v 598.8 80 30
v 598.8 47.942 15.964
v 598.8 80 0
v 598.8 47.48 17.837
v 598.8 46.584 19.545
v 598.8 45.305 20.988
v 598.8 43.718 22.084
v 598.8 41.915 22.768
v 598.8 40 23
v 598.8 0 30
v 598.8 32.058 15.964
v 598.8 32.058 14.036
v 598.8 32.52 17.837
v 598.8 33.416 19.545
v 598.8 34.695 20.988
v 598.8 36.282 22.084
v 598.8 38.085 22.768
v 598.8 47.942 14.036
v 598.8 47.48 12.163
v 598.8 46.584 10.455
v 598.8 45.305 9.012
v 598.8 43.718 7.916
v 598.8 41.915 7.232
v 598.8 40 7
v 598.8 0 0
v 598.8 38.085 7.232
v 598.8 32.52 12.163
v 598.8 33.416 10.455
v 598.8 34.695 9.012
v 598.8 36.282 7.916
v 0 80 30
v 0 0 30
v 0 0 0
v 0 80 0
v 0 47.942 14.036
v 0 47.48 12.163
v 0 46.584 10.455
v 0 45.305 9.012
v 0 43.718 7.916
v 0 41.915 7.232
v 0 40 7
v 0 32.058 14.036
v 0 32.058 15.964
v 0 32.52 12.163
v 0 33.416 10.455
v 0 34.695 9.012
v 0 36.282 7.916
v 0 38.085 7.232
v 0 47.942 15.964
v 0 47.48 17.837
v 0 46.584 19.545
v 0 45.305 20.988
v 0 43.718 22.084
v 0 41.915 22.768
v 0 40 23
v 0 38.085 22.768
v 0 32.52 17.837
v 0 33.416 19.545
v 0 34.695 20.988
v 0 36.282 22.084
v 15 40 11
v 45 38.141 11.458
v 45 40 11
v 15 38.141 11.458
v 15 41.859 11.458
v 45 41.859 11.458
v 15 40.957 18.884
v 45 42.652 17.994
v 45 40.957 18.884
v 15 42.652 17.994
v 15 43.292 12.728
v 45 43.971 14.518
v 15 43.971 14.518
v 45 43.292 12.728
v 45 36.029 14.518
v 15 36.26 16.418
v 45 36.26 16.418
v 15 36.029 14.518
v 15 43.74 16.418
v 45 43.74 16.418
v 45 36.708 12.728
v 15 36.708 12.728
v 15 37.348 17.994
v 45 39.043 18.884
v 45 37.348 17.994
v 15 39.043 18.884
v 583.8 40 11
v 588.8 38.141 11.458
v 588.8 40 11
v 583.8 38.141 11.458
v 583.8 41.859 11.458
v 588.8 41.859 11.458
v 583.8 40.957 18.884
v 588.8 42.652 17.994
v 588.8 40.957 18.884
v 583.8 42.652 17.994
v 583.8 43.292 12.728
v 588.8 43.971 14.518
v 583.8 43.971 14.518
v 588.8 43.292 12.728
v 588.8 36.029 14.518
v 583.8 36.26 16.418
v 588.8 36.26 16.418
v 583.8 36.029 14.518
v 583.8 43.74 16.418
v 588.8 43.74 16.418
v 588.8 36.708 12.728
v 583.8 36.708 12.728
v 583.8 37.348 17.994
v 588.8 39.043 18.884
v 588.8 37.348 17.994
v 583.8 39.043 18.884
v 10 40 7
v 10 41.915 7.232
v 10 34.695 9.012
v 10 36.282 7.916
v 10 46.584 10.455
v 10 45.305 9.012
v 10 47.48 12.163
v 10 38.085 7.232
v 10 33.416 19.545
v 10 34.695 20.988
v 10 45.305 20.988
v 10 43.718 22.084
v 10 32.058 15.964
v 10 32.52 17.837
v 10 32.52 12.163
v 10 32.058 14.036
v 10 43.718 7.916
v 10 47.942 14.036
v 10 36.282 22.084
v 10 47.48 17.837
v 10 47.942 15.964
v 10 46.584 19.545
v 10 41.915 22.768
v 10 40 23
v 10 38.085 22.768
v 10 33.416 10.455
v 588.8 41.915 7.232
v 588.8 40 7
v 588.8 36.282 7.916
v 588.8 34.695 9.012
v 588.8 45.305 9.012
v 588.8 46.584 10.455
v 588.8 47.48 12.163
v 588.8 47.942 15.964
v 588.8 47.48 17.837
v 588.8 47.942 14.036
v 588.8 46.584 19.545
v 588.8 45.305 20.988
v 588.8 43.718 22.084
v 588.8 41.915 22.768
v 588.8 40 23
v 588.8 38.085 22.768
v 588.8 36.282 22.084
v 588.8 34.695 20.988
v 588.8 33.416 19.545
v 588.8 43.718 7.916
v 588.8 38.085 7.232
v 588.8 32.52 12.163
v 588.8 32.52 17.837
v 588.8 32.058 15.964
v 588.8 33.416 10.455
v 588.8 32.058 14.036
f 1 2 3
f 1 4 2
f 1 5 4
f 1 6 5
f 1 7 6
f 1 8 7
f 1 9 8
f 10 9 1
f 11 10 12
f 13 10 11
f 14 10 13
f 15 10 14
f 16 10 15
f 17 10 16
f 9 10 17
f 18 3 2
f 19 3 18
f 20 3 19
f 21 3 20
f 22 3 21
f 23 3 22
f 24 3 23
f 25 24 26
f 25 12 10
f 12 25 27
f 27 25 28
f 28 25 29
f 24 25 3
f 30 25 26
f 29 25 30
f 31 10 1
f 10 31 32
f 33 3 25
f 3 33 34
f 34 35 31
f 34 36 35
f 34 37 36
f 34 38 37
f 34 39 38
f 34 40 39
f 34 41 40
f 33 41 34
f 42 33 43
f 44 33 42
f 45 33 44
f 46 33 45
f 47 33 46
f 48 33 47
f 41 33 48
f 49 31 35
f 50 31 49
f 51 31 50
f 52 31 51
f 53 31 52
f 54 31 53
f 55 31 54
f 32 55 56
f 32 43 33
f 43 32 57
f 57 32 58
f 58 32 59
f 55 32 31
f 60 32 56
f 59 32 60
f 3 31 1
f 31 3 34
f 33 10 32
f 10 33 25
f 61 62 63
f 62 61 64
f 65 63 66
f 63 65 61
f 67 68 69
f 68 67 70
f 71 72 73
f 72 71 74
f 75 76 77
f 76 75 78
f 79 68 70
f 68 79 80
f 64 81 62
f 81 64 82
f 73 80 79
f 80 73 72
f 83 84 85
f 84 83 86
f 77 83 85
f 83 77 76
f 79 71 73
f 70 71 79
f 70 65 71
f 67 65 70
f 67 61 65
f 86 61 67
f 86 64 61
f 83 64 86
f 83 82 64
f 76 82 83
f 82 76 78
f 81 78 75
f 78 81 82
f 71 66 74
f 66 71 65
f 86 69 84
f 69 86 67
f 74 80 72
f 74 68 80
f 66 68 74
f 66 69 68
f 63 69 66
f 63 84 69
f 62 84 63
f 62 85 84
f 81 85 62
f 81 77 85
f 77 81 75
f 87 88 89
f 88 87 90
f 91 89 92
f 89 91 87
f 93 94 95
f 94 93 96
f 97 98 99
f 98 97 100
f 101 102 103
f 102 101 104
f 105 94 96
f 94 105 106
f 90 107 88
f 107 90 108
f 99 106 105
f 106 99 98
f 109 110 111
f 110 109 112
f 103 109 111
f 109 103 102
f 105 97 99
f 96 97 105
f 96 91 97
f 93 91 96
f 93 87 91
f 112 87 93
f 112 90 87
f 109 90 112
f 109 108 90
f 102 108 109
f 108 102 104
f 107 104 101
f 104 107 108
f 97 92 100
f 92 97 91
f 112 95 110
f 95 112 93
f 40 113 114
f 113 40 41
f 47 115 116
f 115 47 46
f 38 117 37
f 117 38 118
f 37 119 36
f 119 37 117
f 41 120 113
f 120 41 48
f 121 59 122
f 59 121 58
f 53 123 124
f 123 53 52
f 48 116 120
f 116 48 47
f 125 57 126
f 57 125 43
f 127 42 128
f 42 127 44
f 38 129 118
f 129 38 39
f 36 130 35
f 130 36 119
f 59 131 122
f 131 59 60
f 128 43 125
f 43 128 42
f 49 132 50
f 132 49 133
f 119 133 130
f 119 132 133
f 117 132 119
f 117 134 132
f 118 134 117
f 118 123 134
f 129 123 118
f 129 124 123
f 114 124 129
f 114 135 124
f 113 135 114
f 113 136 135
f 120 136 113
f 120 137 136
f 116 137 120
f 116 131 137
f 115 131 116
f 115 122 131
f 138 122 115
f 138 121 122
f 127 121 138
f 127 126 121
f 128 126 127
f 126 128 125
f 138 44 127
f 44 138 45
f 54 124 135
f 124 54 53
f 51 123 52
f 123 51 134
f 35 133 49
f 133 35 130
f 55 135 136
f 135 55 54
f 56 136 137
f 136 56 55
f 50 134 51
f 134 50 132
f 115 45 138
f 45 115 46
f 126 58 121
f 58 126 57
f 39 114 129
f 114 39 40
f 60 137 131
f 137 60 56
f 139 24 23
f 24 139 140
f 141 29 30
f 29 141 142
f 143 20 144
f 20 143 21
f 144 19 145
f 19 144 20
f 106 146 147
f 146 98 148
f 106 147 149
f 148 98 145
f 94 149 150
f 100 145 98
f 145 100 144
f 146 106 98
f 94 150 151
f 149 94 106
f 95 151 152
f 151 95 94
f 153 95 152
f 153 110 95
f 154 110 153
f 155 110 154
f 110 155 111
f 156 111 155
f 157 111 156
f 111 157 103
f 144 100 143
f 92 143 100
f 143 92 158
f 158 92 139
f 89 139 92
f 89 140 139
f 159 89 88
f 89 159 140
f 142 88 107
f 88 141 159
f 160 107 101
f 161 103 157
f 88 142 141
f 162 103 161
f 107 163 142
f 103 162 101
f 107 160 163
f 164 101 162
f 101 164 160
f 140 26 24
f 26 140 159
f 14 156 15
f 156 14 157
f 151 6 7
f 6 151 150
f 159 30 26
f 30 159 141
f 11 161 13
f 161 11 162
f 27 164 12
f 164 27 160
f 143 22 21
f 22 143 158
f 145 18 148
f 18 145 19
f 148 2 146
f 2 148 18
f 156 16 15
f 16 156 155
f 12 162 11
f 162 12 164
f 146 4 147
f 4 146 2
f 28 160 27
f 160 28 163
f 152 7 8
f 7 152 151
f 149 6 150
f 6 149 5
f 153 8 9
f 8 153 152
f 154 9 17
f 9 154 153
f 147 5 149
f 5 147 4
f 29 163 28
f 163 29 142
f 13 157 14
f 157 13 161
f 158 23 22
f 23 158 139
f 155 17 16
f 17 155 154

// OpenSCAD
// file: dimensions.scad
// Shared dimensions for SV08 Max Table Components
// Include this file in all component SCAD files

// Convert inches to mm
inch = 25.4;

// Table dimensions
table_width = 802;  // mm
table_depth = 802;  // mm
table_height = 463; // mm (desk height - printer bed at ~30" from floor)

// Component dimensions
leg_size = 4 * inch;          // 4x4 inch legs (101.6mm)
rail_thickness = 30;          // mm (printable thickness)
rail_width = 80;              // mm (printable width)
top_thickness = 25;           // mm

// Connection system dimensions
bolt_hole_diameter = 8;       // M8 bolts
counterbore_diameter = 16;    // For bolt heads
counterbore_depth = 10;       // mm

// Rail heights
bottom_rail_height = 200;     // mm
mid_rail_height = 250;        // mm
top_rail_height = table_height - top_thickness - rail_width; // Calculated

// Calculated rail lengths
long_rail_length = table_width - 2 * leg_size;   // 599mm
short_rail_length = table_depth - 2 * leg_size;  // 599mm

// Table top segment dimensions
segment_width = 150;          // mm
segment_depth = table_depth;  // 802mm
final_segment_width = 52;     // mm (to complete 802mm total width)

// Alignment pin dimensions
pin_diameter = 7.8;           // mm (slightly undersized for press fit)
pin_length = 15;              // mm
pin_hole_diameter = 8;        // mm
// main file
// SV08 Max Table Long Rail Component (X direction)
include <dimensions.scad>

module long_rail() {
    difference() {
        cube([long_rail_length, rail_width, rail_thickness]);

        // Bolt holes at ends
        translate([15, rail_width/2, rail_thickness/2])
            rotate([0, 90, 0])
            cylinder(d=bolt_hole_diameter, h=rail_thickness);

        translate([long_rail_length - 15, rail_width/2, rail_thickness/2])
            rotate([0, 90, 0])
            cylinder(d=bolt_hole_diameter, h=rail_thickness);

        // Counterbores for bolt heads
        translate([0, rail_width/2, rail_thickness/2])
            rotate([0, 90, 0])
            cylinder(d=counterbore_diameter, h=counterbore_depth);

        translate([long_rail_length - counterbore_depth, rail_width/2, rail_thickness/2])
            rotate([0, 90, 0])
            cylinder(d=counterbore_diameter, h=counterbore_depth);
    }
}

// Generate single long rail for STL export
long_rail();
